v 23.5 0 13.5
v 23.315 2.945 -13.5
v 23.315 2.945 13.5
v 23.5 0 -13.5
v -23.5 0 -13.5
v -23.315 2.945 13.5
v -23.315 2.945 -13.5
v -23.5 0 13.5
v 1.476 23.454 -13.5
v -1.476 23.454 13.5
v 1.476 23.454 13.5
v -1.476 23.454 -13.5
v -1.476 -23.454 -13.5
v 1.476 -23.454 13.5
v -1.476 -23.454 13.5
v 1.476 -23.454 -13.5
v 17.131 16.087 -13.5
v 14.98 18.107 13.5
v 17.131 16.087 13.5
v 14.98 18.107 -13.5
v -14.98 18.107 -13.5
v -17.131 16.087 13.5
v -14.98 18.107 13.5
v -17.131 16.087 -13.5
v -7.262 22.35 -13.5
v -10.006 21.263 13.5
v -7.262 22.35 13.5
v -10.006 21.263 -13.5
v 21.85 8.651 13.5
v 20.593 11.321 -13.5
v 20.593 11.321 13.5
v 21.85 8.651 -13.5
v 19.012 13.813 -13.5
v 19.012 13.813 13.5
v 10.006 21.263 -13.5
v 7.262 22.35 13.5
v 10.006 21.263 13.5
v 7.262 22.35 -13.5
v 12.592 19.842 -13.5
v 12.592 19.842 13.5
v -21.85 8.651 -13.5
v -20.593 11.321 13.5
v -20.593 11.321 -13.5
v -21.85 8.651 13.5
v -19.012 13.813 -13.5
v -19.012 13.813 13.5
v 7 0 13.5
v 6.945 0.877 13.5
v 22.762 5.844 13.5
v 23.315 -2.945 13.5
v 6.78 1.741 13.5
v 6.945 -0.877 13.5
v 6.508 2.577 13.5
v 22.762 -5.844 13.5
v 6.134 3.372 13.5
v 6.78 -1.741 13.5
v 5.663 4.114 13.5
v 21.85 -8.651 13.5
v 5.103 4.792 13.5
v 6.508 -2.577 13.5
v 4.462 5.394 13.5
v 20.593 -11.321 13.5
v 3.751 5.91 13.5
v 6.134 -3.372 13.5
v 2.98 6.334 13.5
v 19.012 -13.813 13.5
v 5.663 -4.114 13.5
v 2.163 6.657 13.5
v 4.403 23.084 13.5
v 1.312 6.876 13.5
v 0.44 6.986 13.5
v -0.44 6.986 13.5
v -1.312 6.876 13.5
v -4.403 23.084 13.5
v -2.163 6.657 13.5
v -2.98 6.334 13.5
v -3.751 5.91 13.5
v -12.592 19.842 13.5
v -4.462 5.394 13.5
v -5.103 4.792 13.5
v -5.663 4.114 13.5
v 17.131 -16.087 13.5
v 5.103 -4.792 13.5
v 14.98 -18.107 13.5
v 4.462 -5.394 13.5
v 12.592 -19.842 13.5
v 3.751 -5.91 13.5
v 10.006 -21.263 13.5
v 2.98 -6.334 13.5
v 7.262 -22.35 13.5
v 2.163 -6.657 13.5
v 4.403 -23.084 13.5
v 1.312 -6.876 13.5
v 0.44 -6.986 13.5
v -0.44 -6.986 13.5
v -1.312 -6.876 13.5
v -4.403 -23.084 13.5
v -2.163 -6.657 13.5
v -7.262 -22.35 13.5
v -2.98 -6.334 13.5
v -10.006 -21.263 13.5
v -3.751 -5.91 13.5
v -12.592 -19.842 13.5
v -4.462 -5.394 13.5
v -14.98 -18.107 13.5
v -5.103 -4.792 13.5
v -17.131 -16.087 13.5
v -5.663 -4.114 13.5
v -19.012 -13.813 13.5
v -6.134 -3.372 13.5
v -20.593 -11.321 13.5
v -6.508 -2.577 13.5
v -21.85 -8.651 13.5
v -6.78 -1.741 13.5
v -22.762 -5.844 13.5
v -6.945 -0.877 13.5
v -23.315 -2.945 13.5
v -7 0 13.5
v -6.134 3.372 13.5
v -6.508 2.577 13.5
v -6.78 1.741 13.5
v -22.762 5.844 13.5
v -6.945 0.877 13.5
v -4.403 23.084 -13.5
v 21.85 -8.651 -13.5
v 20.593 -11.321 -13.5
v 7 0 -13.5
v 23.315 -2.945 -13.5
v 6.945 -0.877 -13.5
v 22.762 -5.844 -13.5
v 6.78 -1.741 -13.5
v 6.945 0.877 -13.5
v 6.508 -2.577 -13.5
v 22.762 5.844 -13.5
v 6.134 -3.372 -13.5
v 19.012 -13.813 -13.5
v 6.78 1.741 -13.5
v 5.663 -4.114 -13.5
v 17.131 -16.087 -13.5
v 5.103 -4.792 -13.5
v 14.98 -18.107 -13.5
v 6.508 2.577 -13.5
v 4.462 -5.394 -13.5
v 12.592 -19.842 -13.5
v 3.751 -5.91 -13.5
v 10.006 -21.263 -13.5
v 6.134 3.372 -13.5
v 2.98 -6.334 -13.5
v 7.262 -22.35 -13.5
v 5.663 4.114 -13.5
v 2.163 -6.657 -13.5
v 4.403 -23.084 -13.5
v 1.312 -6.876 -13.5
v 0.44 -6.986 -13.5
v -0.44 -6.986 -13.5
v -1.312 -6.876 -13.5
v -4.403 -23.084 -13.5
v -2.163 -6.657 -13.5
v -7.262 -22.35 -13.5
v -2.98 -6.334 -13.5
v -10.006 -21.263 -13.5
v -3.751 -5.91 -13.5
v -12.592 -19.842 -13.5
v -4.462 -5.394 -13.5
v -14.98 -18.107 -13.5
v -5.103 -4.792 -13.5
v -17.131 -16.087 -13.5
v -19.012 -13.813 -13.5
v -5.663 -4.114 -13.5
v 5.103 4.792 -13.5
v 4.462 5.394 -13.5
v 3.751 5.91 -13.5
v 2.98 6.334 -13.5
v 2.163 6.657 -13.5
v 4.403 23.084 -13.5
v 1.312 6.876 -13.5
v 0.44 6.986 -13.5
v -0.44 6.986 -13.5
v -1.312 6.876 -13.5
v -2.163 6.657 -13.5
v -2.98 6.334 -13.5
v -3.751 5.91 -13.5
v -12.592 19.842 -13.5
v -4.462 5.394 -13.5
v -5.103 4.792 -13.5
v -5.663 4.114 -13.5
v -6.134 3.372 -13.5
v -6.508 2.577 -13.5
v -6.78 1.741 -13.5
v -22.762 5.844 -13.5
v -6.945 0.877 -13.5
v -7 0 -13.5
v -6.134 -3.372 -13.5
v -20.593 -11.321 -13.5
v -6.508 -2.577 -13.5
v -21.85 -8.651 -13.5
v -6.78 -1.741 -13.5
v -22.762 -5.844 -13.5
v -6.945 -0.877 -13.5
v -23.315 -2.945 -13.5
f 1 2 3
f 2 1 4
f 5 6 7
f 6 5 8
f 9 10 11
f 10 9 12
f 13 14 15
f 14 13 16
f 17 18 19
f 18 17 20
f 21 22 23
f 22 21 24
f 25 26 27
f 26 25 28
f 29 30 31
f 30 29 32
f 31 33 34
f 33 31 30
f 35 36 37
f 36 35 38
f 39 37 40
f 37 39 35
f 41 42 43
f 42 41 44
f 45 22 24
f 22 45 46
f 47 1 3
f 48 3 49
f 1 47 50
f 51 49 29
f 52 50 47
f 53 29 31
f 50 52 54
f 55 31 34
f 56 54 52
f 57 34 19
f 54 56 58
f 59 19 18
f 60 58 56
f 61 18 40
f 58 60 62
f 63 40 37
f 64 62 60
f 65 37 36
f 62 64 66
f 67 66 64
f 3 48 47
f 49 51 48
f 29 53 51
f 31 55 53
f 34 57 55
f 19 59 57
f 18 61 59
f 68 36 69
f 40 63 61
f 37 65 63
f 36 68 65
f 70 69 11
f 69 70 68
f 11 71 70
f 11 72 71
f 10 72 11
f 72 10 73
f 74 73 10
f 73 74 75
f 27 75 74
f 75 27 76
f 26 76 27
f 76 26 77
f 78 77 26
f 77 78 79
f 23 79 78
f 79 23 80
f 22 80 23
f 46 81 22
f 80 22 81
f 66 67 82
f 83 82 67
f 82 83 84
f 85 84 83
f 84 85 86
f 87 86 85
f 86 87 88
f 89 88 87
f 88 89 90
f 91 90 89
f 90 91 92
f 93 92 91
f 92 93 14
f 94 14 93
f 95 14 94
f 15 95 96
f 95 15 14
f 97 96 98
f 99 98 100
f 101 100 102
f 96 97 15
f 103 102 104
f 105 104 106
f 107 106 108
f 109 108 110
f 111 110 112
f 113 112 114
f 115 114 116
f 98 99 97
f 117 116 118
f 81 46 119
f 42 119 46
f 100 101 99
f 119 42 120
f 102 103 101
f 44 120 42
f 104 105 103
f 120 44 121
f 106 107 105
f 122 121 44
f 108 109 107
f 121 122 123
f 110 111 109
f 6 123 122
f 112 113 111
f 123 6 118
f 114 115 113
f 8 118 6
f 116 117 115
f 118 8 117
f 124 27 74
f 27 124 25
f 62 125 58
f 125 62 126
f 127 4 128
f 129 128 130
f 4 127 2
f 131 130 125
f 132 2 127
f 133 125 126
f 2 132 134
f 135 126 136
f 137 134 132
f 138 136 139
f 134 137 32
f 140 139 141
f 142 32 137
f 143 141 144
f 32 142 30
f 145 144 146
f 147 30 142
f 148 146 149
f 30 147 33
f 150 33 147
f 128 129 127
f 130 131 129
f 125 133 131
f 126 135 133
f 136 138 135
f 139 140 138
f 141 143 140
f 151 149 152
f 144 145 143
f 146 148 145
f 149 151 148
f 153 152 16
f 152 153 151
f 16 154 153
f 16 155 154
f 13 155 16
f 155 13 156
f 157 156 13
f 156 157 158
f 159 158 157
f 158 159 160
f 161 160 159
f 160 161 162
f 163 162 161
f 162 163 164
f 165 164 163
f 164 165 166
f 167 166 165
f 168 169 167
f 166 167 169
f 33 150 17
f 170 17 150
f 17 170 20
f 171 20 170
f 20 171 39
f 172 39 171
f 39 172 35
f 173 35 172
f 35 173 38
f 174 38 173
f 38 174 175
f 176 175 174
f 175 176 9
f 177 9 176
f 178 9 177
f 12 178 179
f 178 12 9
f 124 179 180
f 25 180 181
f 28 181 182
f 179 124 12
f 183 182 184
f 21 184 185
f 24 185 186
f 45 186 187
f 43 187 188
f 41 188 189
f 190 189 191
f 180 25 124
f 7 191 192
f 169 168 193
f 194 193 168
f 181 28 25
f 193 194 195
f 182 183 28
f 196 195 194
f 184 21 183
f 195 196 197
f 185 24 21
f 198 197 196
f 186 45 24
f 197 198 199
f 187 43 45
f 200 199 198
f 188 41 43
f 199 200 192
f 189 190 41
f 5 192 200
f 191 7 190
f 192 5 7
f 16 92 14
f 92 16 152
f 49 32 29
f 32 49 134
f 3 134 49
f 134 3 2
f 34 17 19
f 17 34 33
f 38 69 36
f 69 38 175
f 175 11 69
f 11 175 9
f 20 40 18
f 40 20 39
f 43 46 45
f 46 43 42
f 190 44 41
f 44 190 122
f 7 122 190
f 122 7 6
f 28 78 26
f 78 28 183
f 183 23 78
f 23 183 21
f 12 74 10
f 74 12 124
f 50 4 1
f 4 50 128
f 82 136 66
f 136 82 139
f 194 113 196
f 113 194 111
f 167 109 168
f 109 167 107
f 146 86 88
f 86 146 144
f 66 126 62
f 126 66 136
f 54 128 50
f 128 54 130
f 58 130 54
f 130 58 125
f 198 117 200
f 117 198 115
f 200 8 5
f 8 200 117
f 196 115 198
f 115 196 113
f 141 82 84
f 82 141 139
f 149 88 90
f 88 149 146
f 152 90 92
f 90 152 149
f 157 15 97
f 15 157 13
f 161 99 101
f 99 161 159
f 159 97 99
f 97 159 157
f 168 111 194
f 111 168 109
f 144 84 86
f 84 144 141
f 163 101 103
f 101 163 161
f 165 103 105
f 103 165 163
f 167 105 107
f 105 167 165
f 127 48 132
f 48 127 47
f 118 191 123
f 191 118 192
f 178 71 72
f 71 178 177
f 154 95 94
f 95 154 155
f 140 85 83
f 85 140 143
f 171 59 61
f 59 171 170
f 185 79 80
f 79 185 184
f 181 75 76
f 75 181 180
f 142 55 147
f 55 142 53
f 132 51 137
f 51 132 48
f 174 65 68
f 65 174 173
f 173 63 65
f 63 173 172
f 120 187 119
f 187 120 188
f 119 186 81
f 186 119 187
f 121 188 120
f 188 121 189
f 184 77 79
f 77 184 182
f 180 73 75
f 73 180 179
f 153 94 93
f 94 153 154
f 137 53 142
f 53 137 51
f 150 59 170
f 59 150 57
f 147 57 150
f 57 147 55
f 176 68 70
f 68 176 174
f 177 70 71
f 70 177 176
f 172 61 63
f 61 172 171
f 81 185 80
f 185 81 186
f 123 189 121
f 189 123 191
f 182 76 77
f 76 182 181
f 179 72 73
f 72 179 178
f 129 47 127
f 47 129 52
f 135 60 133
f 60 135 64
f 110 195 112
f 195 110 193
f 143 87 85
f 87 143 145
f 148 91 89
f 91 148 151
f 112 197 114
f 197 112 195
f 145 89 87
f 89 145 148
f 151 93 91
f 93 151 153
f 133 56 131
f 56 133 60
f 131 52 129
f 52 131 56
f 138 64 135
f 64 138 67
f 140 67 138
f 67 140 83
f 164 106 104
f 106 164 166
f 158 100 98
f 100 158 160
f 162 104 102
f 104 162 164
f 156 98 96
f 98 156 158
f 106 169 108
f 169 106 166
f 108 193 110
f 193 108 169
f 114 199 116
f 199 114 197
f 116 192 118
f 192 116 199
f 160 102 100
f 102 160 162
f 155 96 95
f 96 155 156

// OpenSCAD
$fn = 50;


difference() {
	union() {
		translate(v = [0, 0, -13.5000000000]) {
			cylinder(h = 27, r = 23.5000000000);
		}
	}
	union() {
		translate(v = [0, 0, -100.0000000000]) {
			cylinder(h = 200, r = 7);
		}
	}
}
